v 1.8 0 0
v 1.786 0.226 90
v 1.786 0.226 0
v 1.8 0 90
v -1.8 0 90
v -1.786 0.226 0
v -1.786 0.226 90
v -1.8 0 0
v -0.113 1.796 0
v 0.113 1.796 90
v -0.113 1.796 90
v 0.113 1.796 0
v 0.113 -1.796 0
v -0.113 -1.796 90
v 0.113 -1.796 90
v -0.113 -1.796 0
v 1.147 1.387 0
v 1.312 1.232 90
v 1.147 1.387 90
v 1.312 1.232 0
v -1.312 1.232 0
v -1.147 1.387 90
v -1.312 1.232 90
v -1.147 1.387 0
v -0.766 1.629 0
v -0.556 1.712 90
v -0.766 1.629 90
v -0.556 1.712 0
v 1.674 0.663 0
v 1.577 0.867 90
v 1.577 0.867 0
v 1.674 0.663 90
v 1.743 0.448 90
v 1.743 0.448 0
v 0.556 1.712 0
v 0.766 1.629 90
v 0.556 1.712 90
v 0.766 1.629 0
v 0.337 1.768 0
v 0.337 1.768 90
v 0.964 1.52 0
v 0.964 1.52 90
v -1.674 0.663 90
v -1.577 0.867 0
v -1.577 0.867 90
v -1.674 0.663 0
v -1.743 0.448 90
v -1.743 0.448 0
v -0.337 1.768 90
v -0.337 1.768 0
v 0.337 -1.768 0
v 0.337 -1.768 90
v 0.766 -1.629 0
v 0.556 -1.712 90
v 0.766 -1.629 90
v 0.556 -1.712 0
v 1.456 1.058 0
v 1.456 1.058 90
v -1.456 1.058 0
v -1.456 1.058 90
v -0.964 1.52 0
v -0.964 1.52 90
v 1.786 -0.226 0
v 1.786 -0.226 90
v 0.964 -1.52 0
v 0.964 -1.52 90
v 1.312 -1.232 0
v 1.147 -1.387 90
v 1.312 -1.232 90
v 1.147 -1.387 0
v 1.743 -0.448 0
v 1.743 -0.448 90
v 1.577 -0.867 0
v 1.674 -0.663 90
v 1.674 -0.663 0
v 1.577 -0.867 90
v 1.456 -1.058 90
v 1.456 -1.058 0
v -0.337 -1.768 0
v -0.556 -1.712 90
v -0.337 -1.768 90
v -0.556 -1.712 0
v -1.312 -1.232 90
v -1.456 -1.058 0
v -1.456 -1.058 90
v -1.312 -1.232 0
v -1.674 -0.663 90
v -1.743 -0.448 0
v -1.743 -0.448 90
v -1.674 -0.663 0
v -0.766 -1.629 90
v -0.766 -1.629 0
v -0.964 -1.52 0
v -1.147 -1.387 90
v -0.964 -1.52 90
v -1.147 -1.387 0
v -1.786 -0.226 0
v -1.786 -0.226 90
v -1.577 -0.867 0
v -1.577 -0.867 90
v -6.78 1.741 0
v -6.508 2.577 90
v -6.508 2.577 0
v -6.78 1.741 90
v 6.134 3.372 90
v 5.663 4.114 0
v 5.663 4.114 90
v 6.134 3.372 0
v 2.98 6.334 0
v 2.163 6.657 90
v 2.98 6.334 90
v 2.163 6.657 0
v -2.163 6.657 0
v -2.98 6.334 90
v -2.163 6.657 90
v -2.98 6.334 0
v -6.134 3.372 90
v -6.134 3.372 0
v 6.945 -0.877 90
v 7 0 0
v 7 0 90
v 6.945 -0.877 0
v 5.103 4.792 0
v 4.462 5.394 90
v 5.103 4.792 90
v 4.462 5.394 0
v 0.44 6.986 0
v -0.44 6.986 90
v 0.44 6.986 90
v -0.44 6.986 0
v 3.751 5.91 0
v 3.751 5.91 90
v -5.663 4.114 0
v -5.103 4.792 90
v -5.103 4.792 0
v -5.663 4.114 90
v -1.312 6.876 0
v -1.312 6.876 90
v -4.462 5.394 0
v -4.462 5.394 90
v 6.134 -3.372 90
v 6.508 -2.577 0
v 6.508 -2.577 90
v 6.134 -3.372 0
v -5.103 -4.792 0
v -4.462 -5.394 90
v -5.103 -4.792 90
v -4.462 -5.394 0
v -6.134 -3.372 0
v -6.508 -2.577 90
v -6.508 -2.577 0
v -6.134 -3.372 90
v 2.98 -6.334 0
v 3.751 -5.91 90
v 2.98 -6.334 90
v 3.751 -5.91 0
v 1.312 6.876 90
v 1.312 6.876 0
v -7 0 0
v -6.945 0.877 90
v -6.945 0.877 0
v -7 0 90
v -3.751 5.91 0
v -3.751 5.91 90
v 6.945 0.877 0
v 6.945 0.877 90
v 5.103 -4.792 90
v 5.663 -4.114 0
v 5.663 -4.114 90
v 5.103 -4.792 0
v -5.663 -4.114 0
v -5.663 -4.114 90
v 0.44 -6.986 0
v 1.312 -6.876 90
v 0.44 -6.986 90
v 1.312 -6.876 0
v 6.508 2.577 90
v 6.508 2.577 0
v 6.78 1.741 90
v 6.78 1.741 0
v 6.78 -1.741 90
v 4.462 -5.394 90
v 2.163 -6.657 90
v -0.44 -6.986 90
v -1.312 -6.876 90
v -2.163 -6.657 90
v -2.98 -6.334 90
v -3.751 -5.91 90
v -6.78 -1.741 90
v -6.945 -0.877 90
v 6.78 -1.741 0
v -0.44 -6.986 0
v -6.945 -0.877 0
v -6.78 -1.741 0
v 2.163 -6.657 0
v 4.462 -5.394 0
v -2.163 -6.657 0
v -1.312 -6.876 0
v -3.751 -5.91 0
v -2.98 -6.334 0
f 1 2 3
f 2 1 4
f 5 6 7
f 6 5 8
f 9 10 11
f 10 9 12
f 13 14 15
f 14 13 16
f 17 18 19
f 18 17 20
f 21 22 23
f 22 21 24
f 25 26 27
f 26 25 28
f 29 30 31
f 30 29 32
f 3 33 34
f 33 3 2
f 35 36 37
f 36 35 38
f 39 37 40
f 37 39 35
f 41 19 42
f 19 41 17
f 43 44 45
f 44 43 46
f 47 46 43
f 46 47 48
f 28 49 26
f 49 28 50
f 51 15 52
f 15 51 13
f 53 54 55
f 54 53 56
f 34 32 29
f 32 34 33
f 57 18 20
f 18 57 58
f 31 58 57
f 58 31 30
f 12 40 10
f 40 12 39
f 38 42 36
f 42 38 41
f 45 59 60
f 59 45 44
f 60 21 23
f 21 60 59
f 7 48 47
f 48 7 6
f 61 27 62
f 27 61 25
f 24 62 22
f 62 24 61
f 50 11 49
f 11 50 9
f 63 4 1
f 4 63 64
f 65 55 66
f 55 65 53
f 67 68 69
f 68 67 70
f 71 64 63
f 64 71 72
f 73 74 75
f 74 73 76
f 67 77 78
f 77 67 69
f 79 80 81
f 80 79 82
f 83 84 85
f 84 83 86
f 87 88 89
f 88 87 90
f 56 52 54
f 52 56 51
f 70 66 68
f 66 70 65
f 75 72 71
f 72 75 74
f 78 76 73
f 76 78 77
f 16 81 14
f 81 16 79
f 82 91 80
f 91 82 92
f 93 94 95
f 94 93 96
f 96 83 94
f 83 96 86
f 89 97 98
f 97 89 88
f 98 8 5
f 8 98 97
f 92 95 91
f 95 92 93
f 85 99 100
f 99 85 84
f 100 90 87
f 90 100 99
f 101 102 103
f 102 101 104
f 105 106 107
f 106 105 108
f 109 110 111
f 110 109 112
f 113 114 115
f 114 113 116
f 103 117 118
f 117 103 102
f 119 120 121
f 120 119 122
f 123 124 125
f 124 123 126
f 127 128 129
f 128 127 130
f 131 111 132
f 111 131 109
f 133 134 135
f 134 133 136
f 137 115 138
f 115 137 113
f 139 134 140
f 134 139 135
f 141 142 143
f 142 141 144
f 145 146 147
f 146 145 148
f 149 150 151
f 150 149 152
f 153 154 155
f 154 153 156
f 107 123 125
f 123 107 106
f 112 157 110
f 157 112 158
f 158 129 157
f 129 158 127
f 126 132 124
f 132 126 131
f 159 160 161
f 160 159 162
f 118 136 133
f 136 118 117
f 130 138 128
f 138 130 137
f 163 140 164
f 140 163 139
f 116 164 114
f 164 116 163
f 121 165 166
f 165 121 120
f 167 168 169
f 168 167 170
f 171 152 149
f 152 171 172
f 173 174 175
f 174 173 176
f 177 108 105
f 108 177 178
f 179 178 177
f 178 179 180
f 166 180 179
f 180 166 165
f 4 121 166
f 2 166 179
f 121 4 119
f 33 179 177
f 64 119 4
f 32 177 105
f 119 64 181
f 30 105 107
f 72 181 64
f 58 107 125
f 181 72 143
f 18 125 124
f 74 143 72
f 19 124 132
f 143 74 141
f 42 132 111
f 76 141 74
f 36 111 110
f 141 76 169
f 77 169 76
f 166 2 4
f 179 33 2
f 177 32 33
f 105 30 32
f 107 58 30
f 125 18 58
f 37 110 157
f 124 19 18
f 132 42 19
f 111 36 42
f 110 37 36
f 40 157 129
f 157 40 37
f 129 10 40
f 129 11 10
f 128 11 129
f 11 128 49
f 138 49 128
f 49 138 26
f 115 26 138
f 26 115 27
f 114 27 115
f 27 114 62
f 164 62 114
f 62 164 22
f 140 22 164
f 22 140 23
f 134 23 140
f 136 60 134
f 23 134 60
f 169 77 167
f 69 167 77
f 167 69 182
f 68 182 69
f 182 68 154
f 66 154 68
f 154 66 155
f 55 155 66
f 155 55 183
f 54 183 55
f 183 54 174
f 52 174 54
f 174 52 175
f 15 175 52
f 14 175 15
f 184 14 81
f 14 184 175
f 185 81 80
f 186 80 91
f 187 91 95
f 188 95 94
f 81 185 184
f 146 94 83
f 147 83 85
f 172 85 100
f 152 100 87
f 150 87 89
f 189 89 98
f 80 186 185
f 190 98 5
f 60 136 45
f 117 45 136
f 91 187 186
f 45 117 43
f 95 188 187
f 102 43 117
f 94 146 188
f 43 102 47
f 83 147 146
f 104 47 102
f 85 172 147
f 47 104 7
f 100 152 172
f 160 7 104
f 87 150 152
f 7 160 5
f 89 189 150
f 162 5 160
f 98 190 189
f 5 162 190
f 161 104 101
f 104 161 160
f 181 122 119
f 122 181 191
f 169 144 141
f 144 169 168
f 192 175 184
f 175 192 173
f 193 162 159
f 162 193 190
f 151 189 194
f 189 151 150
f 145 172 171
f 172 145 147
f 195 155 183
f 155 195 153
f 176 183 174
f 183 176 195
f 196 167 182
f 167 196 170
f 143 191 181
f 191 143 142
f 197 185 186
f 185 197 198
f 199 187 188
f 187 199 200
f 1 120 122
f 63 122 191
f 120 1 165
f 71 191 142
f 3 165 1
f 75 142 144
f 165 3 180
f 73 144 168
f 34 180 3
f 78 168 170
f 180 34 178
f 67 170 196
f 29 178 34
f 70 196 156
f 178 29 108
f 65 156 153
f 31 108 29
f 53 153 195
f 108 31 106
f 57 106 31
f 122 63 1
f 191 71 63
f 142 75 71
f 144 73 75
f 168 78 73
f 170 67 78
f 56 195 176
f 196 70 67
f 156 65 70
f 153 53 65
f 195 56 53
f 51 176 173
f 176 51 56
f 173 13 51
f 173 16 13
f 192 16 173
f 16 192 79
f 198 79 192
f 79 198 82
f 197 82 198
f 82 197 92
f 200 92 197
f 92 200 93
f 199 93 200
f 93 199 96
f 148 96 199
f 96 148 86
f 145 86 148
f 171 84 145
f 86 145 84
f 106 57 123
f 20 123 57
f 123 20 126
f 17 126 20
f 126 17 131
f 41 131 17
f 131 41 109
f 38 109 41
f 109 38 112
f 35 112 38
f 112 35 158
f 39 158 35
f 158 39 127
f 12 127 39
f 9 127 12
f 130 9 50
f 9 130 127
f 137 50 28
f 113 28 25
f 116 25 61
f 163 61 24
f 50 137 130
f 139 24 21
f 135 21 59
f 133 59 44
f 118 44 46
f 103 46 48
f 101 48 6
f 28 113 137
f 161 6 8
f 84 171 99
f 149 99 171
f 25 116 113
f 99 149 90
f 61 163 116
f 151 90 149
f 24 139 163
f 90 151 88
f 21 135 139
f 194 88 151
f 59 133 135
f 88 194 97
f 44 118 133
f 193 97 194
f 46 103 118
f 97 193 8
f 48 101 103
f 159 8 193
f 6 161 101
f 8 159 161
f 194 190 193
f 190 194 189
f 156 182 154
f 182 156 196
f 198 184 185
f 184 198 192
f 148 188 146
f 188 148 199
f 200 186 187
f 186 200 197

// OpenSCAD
$fn = 50;


difference() {
	union() {
		cylinder(h = 90, r = 7.0000000000);
	}
	union() {
		translate(v = [0, 0, -100]) {
			cylinder(h = 200, r = 1.8000000000);
		}
		translate(v = [0, 0, -100]) {
			cylinder(h = 200, r = 1.8000000000);
		}
	}
}
